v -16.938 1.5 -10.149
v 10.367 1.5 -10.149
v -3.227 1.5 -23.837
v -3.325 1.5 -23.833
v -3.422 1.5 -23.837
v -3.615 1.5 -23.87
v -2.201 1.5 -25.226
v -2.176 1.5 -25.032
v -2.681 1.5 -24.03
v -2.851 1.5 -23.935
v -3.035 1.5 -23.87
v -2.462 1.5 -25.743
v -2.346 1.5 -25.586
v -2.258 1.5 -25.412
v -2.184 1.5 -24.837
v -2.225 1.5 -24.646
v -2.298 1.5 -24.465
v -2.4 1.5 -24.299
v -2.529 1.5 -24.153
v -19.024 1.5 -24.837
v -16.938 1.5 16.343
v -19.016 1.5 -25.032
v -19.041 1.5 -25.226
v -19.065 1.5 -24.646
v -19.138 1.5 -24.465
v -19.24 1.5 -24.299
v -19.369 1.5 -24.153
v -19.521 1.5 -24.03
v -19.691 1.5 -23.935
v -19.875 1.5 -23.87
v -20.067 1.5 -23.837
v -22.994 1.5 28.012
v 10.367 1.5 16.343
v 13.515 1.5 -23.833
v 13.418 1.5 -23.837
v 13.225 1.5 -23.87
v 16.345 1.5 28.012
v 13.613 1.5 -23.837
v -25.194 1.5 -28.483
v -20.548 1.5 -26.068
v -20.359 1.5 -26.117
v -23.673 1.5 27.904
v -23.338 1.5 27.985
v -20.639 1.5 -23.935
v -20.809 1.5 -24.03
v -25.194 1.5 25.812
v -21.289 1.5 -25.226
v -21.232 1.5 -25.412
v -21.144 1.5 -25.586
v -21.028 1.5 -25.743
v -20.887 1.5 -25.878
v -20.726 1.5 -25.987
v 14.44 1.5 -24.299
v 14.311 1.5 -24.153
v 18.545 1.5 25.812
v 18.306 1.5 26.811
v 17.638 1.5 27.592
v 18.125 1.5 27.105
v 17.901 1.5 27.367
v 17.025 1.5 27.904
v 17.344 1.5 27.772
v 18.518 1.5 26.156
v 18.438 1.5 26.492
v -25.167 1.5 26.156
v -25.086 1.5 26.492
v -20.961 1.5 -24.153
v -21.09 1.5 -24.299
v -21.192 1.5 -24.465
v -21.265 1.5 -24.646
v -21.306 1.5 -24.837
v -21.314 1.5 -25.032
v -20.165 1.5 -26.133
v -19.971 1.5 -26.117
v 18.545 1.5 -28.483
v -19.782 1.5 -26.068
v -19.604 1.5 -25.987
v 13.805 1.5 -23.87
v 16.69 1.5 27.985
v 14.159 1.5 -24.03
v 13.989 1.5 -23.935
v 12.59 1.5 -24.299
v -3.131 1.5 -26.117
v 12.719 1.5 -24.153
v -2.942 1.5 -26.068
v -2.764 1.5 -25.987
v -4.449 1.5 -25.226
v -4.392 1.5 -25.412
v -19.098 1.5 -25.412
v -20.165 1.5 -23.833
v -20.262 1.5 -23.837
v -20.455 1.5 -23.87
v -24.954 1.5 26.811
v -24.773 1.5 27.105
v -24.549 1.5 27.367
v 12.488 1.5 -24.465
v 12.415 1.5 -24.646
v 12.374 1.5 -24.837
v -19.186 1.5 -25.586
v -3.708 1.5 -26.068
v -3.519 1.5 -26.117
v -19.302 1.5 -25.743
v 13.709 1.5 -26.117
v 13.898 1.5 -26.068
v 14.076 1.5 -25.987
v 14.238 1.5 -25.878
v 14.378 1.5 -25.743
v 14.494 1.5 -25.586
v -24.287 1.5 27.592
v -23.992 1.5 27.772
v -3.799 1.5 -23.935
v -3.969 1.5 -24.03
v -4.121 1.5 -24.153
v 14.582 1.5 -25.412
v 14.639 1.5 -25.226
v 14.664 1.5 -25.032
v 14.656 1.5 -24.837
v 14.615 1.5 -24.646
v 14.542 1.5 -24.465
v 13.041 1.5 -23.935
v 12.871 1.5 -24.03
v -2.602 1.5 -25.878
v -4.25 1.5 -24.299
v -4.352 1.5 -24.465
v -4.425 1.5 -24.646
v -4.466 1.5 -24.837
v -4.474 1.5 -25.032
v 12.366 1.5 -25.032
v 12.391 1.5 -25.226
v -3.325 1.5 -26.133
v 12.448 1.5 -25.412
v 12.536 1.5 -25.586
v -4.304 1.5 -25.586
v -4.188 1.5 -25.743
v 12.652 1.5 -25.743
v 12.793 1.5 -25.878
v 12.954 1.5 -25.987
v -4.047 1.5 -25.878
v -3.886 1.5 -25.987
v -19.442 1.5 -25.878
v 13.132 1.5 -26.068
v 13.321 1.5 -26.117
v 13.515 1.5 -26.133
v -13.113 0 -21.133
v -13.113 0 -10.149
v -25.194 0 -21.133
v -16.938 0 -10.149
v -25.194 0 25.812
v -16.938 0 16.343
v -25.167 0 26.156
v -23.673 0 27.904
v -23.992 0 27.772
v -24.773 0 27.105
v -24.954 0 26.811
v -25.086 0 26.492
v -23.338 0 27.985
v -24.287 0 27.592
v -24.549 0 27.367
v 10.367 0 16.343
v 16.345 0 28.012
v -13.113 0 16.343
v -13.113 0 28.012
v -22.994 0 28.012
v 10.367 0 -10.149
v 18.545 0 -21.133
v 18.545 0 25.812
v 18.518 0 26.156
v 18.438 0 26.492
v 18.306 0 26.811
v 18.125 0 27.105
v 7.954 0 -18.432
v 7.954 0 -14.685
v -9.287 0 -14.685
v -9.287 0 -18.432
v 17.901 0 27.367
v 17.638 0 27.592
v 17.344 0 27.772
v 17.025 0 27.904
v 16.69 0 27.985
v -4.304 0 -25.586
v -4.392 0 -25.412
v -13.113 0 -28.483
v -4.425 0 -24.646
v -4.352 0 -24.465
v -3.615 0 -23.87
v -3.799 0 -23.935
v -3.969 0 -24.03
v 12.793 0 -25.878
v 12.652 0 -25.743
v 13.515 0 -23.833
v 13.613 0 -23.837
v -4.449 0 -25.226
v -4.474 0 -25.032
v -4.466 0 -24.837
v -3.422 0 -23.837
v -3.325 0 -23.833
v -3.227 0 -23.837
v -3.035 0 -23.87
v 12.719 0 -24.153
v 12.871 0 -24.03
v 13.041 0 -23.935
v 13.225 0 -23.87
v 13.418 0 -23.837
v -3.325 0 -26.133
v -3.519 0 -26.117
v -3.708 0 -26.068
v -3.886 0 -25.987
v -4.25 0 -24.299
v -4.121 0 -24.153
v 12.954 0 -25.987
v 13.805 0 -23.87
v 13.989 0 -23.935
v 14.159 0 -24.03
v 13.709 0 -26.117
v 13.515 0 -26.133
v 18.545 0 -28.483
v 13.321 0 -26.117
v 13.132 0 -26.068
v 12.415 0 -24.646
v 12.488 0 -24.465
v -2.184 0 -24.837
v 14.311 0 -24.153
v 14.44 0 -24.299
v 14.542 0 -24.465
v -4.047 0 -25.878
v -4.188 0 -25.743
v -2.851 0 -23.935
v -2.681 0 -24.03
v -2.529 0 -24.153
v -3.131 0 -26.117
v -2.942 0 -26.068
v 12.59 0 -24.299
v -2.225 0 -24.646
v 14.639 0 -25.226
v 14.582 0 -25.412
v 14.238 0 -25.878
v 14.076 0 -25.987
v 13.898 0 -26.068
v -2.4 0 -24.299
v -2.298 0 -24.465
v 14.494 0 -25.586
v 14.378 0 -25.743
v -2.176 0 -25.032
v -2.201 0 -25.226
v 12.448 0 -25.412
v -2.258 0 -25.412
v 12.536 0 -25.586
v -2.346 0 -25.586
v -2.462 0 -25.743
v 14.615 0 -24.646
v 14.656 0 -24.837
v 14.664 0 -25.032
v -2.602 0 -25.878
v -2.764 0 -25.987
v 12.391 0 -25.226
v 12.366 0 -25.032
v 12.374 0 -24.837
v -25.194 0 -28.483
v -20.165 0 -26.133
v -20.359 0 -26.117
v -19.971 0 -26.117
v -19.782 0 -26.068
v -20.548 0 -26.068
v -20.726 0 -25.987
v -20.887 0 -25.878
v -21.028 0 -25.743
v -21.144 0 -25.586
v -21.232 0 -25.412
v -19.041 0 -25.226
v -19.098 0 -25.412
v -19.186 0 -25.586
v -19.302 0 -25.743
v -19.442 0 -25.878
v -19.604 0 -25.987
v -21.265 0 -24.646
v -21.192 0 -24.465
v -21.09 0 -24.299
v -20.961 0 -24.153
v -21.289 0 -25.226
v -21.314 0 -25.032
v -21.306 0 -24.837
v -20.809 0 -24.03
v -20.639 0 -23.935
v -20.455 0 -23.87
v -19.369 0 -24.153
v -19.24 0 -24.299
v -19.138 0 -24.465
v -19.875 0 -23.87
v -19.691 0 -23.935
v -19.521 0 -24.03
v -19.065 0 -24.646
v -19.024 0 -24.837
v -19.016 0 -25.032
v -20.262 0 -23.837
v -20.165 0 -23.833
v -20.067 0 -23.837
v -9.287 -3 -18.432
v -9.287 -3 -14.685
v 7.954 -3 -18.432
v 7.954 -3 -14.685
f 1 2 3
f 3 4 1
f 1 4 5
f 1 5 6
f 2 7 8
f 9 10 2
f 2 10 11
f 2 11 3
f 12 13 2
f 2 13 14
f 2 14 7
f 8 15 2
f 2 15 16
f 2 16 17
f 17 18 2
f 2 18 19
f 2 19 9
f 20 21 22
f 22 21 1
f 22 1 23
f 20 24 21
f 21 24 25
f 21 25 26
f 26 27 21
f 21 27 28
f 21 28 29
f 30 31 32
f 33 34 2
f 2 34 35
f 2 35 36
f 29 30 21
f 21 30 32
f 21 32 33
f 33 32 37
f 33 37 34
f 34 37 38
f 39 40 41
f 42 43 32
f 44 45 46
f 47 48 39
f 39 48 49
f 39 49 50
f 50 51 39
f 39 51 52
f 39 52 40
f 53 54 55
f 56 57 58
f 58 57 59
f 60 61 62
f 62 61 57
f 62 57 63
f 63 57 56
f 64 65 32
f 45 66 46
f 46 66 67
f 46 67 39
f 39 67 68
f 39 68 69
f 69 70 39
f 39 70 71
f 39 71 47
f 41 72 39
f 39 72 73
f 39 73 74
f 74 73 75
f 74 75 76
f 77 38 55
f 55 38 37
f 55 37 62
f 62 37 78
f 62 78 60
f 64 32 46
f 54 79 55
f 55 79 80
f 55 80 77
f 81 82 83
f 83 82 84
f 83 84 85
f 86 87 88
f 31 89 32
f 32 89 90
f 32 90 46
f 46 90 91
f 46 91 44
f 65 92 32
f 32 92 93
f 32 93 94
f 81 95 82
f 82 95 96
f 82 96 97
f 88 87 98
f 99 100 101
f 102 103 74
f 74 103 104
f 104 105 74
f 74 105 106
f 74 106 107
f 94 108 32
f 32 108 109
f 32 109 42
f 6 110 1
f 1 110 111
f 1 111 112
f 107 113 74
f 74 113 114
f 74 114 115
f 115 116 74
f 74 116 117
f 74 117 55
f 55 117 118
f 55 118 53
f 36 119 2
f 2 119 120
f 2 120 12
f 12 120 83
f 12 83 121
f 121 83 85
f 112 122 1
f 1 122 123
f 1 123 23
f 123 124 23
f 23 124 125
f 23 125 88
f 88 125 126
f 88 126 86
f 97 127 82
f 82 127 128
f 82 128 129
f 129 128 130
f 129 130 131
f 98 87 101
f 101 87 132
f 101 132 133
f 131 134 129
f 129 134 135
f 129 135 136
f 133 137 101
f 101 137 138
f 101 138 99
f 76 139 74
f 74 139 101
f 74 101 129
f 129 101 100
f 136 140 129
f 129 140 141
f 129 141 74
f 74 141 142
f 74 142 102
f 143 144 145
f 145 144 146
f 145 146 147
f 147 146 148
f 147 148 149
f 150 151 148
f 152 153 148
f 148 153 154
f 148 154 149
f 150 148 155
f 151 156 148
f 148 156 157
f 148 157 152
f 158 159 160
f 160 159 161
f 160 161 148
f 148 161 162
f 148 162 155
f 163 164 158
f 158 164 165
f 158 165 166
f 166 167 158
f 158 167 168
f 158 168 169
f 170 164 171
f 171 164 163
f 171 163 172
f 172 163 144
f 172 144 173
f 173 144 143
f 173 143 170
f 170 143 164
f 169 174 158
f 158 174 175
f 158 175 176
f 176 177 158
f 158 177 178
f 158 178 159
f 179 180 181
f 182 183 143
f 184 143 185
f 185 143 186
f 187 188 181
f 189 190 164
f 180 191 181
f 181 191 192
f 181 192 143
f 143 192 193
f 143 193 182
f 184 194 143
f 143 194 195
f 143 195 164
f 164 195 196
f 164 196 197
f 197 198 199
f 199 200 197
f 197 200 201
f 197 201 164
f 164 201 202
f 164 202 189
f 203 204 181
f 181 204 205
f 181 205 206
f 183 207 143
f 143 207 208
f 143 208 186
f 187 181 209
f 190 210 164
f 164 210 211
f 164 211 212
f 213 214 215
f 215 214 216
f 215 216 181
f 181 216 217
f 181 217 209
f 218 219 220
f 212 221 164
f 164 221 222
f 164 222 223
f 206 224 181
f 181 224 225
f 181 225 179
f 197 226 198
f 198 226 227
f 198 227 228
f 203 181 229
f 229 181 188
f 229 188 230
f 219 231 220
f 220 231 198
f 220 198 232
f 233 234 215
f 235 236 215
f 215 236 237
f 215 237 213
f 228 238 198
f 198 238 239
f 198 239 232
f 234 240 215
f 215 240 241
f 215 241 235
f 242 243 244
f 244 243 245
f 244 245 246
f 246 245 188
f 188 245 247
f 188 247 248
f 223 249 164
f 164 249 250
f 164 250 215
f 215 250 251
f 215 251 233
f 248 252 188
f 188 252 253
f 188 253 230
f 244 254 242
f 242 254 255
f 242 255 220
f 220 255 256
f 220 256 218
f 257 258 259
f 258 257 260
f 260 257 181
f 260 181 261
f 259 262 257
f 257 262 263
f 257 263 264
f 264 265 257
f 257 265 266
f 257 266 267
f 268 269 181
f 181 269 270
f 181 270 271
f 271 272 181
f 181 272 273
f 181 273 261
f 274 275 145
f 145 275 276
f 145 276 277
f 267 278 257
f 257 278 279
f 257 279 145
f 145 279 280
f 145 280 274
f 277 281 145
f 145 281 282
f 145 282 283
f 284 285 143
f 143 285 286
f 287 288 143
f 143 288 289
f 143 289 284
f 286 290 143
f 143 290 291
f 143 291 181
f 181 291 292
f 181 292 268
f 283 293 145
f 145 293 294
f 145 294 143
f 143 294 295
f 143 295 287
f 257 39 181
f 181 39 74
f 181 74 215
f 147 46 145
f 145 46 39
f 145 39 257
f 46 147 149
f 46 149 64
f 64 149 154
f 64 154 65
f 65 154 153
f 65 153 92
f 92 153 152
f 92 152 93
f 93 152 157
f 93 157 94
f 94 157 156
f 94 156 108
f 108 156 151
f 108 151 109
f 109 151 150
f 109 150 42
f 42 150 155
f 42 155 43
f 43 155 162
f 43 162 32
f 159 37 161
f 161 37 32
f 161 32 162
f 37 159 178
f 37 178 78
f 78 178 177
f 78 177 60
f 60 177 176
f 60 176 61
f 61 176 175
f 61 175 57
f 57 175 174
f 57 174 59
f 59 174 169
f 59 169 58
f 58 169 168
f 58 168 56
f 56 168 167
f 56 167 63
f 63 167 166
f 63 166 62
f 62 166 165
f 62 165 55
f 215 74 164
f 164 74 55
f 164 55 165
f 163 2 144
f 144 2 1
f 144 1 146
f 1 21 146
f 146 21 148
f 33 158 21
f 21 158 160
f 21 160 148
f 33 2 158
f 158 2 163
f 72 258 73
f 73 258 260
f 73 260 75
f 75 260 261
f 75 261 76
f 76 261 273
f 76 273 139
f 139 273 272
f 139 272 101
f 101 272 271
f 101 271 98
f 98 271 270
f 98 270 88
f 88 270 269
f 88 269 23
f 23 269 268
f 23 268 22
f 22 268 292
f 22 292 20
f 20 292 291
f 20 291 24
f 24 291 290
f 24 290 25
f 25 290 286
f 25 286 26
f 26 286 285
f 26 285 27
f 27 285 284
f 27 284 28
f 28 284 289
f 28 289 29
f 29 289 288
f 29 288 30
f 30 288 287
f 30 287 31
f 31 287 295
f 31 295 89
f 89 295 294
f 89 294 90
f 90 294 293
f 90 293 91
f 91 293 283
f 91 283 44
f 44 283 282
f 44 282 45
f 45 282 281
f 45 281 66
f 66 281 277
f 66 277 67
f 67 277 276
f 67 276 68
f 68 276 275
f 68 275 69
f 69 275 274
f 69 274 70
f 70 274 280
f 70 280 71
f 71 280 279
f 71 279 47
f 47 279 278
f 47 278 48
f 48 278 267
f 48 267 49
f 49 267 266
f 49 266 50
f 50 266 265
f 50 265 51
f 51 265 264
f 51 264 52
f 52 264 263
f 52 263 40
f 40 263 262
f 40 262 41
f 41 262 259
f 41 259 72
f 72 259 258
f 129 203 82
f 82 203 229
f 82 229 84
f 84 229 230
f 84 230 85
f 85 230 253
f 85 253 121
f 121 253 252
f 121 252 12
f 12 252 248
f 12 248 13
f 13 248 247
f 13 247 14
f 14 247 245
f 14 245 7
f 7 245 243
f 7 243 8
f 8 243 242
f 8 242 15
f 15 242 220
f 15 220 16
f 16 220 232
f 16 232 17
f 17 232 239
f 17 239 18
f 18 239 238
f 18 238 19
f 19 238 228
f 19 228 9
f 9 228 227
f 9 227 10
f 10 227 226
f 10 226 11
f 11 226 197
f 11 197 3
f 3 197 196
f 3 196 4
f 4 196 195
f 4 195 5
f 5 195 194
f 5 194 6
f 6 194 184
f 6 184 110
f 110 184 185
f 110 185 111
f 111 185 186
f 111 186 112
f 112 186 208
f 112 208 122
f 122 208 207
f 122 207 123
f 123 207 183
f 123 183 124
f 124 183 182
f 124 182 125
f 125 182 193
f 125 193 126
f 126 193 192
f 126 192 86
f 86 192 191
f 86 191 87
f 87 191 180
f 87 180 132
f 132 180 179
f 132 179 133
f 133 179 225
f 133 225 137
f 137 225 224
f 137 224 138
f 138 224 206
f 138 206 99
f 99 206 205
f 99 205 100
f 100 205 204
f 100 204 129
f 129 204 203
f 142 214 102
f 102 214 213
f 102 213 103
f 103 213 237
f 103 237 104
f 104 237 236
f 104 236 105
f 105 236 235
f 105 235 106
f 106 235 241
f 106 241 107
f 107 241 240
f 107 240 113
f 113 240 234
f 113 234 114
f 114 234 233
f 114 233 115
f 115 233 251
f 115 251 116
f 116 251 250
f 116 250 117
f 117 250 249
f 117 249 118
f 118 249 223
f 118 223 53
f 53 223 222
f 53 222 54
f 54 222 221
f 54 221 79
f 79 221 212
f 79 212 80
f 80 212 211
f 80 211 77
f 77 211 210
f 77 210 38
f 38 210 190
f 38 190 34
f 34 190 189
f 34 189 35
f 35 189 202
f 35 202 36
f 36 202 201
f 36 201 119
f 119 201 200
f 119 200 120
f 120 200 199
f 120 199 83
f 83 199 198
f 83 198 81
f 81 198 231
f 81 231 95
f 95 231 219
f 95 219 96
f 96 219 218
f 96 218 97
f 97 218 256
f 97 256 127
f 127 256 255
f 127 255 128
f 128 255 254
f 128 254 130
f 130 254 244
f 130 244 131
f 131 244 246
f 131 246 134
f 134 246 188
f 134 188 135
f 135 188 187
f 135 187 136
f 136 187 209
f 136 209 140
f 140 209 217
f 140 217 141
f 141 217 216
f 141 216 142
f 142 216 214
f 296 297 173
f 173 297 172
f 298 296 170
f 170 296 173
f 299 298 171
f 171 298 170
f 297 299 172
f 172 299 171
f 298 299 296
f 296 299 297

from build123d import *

# Parameters (mm, degrees)
SKETCH1_R           = 1.15
SKETCH1_W           = 27.305
SKETCH1_H           = 26.492
SKETCH1_W_2         = 27.241
SKETCH1_H_2         = 3.747
BOSS_EXTRUDE1_DEPTH = 1.5
SKETCH2_W           = 27.241
SKETCH2_H           = 3.747
BOSS_EXTRUDE2_DEPTH = 2
SKETCH3_W           = 27.241
SKETCH3_H           = 3.747
BOSS_EXTRUDE3_DEPTH = 1.5
SKETCH5_W           = 17.241
SKETCH5_H           = 3.747
BOSS_EXTRUDE4_DEPTH = 3
SKETCH6_W           = 27.241
SKETCH6_H           = 3.747
CUT_EXTRUDE1_DEPTH  = 2


with BuildPart() as part:
    # Sketch1 → Boss-Extrude1 (new body)
    with BuildSketch(Plane(origin=(0, 0, 0), x_dir=(1, 0, 0), z_dir=(0, 1, 0))):
        with BuildLine():
            Line((-25.193654123, -23.311779602), (-25.193654123, 28.483220398))
            Line((-25.193654123, 28.483220398), (18.545345877, 28.483220398))
            Line((18.545345877, 28.483220398), (18.545345877, -23.311779602))
            Line((18.545345877, -23.311779602), (18.545345877, -24.511779602))
            Line((18.545345877, -24.511779602), (18.545345877, -25.811779602))
            ThreePointArc((18.545345877, -25.811779602), (17.900980796, -27.367414521), (16.345345877, -28.011779602))
            Line((16.345345877, -28.011779602), (-22.993654123, -28.011779602))
            ThreePointArc((-22.993654123, -28.011779602), (-24.549289041, -27.367414521), (-25.193654123, -25.811779602))
            Line((-25.193654123, -25.811779602), (-25.193654123, -24.511779602))
            Line((-25.193654123, -24.511779602), (-25.193654123, -23.311779602))
        make_face()
        with Locations(Location((-20.164926555, 24.983220398, 0), (0, 0, 270))):
            Circle(SKETCH1_R, mode=Mode.SUBTRACT)
        with Locations(Location((-3.324926555, 24.983220398, 0), (0, 0, 270))):
            Circle(SKETCH1_R, mode=Mode.SUBTRACT)
        with Locations(Location((13.515073445, 24.983220398, 0), (0, 0, 270))):
            Circle(SKETCH1_R, mode=Mode.SUBTRACT)
        with Locations((-3.285420702, -3.096858745)):
            Rectangle(SKETCH1_W, SKETCH1_H, mode=Mode.SUBTRACT)
        with Locations((-0.666632566, 16.558921478)):
            Rectangle(SKETCH1_W_2, SKETCH1_H_2, mode=Mode.SUBTRACT)
    extrude(amount=BOSS_EXTRUDE1_DEPTH)



with BuildPart() as body_2:
    # Sketch2 → Boss-Extrude2 (new body)
    with BuildSketch(Plane(origin=(0, 1.5, 0), x_dir=(1, 0, 0), z_dir=(0, 1, 0))):
        with Locations((-0.666632566, 16.558921478)):
            Rectangle(SKETCH2_W, SKETCH2_H)
    extrude(amount=BOSS_EXTRUDE2_DEPTH)


with BuildPart() as part_1:
    add(part.part)

    add(body_2.part)  # Boss-Extrude3 merges body 2
    # Sketch3 → Boss-Extrude3 (add)
    with BuildSketch(Plane.XZ.offset(-1.5)):
        with Locations((-0.666632566, -16.558921478)):
            Rectangle(SKETCH3_W, SKETCH3_H)
    extrude(amount=BOSS_EXTRUDE3_DEPTH)

    # Sketch5 → Boss-Extrude4 (add)
    with BuildSketch(Plane.XZ):
        with Locations((-0.666632566, -16.558921478)):
            Rectangle(SKETCH5_W, SKETCH5_H)
    extrude(amount=BOSS_EXTRUDE4_DEPTH)

    # Sketch6 → Cut-Extrude1 (cut)
    with BuildSketch(Plane(origin=(0, 3.5, 0), x_dir=(1, 0, 0), z_dir=(0, 1, 0))):
        with Locations((-0.666632566, 16.558921478)):
            Rectangle(SKETCH6_W, SKETCH6_H)
    extrude(amount=-CUT_EXTRUDE1_DEPTH, mode=Mode.SUBTRACT)


solid = part_1.part
